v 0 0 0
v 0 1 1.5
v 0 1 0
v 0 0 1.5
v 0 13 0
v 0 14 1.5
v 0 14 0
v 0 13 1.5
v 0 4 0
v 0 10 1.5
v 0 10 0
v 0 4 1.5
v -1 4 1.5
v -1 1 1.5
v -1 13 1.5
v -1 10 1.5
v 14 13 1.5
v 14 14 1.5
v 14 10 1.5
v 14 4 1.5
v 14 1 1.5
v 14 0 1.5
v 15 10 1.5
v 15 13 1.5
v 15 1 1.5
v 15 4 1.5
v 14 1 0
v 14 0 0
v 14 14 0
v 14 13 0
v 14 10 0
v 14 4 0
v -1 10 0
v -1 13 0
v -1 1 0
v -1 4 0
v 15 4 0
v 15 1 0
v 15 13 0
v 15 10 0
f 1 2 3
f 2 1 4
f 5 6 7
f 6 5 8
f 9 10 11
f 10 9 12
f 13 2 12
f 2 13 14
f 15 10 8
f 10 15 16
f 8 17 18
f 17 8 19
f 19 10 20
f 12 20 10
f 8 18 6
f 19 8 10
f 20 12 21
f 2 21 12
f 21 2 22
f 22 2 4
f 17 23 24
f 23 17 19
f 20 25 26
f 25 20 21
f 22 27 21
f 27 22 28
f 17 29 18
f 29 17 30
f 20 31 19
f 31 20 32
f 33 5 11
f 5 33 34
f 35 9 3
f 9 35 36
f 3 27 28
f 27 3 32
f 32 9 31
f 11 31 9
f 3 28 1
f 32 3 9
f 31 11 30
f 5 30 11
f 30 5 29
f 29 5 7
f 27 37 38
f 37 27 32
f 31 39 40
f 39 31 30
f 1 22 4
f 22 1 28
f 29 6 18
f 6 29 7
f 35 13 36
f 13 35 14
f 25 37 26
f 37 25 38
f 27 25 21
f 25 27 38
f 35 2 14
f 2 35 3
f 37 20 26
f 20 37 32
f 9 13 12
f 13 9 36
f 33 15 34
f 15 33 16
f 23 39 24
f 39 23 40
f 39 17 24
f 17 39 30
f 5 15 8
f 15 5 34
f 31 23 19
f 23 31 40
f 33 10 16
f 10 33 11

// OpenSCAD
switchHoleSize=14;
plateThickness=1.5;
teethHeight=3;
teethtWidth=1;

module switchHole(){
    union(){
        cube([switchHoleSize,switchHoleSize,plateThickness]);

        translate([-teethtWidth,1,0])
        cube([switchHoleSize+2*teethtWidth,teethHeight,plateThickness]);

        translate([-teethtWidth,switchHoleSize-teethtWidth-teethHeight,0])
        cube([switchHoleSize+2*teethtWidth,teethHeight,plateThickness]);
    }
}

switchHole();
